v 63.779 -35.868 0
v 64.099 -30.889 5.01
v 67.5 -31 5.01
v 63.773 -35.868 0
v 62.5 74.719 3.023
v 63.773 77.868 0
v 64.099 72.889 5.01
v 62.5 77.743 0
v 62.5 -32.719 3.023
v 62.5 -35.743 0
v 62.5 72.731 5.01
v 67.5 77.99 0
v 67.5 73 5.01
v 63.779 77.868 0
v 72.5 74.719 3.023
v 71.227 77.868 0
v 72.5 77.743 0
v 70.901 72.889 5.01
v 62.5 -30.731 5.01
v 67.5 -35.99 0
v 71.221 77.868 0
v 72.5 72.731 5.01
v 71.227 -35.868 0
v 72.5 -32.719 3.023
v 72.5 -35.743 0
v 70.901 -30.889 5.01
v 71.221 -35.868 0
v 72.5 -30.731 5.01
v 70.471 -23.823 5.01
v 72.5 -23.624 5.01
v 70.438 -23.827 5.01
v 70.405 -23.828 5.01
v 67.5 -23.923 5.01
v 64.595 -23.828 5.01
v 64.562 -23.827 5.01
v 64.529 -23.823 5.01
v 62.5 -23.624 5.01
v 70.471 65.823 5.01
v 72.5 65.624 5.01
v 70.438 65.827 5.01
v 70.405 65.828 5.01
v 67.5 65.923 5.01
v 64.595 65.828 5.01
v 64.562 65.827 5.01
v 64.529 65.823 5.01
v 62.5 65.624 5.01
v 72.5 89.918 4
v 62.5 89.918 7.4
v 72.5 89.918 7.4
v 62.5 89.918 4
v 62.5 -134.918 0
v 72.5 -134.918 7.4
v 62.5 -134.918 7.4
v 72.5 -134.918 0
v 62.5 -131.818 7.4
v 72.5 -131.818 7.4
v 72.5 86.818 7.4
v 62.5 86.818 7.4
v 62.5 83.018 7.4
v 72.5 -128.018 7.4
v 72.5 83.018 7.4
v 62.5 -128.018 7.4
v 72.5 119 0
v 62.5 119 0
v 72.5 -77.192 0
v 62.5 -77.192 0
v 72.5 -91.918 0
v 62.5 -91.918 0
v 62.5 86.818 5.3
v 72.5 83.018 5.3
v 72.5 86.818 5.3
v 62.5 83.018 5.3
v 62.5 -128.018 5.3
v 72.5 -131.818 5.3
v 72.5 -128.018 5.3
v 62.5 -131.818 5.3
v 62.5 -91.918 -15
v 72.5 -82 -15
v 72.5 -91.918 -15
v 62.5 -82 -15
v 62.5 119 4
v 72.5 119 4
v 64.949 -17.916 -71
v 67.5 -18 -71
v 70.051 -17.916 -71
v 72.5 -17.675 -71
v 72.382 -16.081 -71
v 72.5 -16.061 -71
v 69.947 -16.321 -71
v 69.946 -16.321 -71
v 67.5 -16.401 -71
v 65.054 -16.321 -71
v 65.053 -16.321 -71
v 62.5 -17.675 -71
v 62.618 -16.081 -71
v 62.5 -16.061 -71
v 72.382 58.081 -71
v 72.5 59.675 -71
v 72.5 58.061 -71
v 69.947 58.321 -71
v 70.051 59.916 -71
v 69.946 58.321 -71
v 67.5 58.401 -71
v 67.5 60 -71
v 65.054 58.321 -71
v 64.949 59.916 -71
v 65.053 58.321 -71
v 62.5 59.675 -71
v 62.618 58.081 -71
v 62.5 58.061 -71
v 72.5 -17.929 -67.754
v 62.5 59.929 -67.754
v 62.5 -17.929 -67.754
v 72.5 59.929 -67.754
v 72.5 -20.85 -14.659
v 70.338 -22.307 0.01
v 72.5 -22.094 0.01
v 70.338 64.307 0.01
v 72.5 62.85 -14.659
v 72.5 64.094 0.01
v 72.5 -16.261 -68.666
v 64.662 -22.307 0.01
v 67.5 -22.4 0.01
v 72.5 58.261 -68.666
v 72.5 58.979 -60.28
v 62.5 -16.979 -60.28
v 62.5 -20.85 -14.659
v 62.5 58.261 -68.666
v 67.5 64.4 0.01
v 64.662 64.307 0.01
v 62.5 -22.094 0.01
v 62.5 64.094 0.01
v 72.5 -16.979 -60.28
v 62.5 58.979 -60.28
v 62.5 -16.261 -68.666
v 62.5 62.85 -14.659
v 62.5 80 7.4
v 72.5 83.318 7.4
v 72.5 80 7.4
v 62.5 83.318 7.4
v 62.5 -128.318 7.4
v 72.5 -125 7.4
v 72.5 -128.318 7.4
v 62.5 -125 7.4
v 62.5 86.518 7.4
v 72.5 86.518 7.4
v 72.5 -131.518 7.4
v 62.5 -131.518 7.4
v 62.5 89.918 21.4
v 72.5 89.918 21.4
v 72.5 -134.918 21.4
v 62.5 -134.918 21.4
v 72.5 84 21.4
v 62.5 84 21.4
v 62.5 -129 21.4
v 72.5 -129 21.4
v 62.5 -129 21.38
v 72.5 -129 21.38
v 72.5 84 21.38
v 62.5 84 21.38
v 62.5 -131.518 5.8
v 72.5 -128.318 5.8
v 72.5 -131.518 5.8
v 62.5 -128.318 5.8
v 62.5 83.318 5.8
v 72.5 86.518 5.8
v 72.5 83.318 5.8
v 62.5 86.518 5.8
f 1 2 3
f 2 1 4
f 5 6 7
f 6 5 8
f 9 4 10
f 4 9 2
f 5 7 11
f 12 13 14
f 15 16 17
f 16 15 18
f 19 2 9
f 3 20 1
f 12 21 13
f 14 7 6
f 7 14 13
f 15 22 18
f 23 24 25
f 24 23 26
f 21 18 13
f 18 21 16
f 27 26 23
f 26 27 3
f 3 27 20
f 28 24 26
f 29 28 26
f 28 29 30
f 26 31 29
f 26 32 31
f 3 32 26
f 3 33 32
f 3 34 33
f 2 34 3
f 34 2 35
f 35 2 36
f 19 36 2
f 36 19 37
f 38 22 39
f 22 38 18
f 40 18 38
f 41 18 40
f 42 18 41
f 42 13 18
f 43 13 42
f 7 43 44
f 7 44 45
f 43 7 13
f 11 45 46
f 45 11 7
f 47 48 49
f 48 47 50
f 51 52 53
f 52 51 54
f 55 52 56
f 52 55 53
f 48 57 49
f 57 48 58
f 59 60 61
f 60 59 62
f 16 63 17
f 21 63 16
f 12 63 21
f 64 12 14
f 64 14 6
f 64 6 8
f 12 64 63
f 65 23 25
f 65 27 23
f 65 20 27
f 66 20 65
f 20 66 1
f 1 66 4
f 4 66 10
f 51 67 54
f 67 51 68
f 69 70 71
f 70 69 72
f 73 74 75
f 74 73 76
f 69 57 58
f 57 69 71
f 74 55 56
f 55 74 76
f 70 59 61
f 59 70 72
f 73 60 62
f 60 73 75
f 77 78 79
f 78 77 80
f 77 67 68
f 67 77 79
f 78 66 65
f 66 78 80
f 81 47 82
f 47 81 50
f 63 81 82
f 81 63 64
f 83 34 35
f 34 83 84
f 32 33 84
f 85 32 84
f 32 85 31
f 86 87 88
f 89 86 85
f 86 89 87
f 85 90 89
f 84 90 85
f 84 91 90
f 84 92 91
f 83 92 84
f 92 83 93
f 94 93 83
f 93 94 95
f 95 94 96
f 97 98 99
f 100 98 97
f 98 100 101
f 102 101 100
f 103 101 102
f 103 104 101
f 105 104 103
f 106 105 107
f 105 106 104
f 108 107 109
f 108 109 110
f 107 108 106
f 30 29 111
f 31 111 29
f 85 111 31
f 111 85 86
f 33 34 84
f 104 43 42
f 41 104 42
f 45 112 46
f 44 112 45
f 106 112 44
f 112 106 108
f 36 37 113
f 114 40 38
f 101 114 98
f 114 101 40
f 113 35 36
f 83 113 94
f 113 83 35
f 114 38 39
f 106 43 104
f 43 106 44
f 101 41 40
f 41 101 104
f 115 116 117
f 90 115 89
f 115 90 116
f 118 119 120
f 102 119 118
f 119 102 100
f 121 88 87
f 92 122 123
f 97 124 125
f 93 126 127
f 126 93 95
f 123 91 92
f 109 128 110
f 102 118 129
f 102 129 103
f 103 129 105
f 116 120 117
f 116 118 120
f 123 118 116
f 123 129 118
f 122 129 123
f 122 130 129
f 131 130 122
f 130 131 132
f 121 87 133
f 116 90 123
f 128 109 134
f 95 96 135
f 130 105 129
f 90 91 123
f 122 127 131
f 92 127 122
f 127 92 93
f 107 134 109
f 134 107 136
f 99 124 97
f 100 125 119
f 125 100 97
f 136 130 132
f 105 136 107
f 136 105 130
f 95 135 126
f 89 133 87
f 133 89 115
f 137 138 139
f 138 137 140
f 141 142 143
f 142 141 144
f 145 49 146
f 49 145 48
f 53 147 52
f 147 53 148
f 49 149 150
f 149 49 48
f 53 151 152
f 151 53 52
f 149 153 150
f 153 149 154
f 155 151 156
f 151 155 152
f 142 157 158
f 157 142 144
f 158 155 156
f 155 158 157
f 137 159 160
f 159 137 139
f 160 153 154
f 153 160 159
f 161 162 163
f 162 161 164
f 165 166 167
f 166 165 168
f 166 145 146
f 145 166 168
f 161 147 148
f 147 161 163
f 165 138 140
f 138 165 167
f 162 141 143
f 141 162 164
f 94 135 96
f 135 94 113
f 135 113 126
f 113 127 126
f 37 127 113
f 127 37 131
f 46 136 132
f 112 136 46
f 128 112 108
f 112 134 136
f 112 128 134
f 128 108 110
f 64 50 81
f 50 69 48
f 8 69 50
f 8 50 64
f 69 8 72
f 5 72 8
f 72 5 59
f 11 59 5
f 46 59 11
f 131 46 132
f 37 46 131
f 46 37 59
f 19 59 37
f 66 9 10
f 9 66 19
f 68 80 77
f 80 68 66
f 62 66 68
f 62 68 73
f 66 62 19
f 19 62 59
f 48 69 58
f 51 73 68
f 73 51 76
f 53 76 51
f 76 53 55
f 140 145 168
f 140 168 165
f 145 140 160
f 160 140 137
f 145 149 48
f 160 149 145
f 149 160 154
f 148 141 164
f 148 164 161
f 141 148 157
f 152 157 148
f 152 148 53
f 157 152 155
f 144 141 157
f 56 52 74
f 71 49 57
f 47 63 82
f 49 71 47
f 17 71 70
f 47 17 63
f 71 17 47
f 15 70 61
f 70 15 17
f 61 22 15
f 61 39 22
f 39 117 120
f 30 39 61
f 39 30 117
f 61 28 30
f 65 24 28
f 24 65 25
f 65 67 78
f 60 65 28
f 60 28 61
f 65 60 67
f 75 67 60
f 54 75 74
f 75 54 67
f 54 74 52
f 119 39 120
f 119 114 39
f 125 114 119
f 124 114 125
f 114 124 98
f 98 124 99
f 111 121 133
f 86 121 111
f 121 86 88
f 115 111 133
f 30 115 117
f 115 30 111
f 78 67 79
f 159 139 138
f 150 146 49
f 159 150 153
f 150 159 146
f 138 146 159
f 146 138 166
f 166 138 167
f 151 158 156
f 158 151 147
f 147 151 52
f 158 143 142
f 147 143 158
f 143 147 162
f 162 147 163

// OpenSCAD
// file: ../../lib/project/util.scad
// lib/project/util.scad

module rounded_rect_2d(size = [10, 10], r = 2) {
  x = size[0];
  y = size[1];
  rr = min(r, min(x, y) / 2);

  hull() {
    for (sx = [-1, 1], sy = [-1, 1]) {
      translate([sx * (x / 2 - rr), sy * (y / 2 - rr)])
        circle(r = rr);
    }
  }
}
// file: ../../lib/project/params.scad
// lib/project/params.scad
// Shared project parameters for the final tray and all fit-test models.

debug = false;

// Main tray footprint.
tray_corner_r = 15;

// Top tray shell.
tray_floor_t = 2.4;
tray_wall_h = 14;
top_wall_w = 10;
rim_inner_taper = 4.0;
glue_rabbet_h = 1.6;
glue_rabbet_w = 3.2;
glue_rabbet_side_clearance = 0.3;
glue_rabbet_vertical_clearance = 0.5;

// Underside support lip and rear support section.
support_lip_drop = 15;
support_lip_w = 10;
front_lip_forward_shift = 2;
front_lip_back_extra = 5;
front_lip_bottom_back_extra = 0;
side_lip_inner_extra = 2.5;
side_lip_bottom_inner_extra = 0;
console_clear_w = 320;
side_lip_run = 170;
tray_w = console_clear_w + 2 * support_lip_w;
tray_d = side_lip_run + support_lip_w;
front_extension = 45;
rear_gap_w = 28;
rear_tongue_side_margin = 20;
rear_tongue_w = tray_w - 2 * rear_tongue_side_margin;
rear_tongue_depth = 29;
rear_tongue_t = 4.0;

// Cup holder location and plug geometry.
cup_spacing = 135;
// Confirmed from fit checks: move plugs 39 mm rearward from the prior position.
cup_y_from_front = 111;
plug_top_d = 90;
plug_bottom_d = 78;
plug_h = 71;
plug_shell_t = 1.6;
plug_clearance_z = 0;
cup_rim_w = 7;
cup_rim_h = 5;

// Optional underside splice plate for joining printed tray halves.
splice_plate_enable = true;
splice_plate_w = 120;
splice_plate_d = 18;
splice_plate_t = 2;
splice_plate_corner_r = 3;
splice_plate_y_from_front = 40;
splice_plate_side_clearance = 0.3;
splice_plate_vertical_clearance = 0.5;
rear_splice_plate_enable = true;
rear_splice_plate_y_from_front = 184;

// Fit-test defaults.
test_plug_top_ds = [84, 85, 86];
test_spacing_values = [116, 118, 120];
test_lip_drop_values = [8, 10, 12];
test_rear_tongue_ts = [1.4, 1.8, 2.2];
test_frame_wall_w = 12;
test_front_zone_depth = 100;
test_rear_zone_depth = 56;
test_gap_section_w = 140;
test_coupon_spacing = 18;
test_front_to_back_slice_w = 10;
test_side_to_side_slice_w = 10;
test_rabbet_corner_section_size = 56;
test_rabbet_coupon_gap = 16;
test_rabbet_body_margin_from_groove = 15;
// main file
use <../../lib/project/console_tray.scad>;
include <../../lib/project/params.scad>;

cup_plug_front_to_back_slice_variant(
  tray_w = tray_w,
  tray_d = tray_d,
  front_extension = front_extension,
  tray_corner_r = tray_corner_r,
  tray_floor_t = tray_floor_t,
  tray_wall_h = tray_wall_h,
  top_wall_w = top_wall_w,
  rim_inner_taper = rim_inner_taper,
  glue_rabbet_h = glue_rabbet_h,
  glue_rabbet_w = glue_rabbet_w,
  glue_rabbet_side_clearance = glue_rabbet_side_clearance,
  glue_rabbet_vertical_clearance = glue_rabbet_vertical_clearance,
  support_lip_drop = support_lip_drop,
  support_lip_w = support_lip_w,
  front_lip_forward_shift = front_lip_forward_shift,
  front_lip_back_extra = front_lip_back_extra,
  front_lip_bottom_back_extra = front_lip_bottom_back_extra,
  side_lip_inner_extra = side_lip_inner_extra,
  side_lip_bottom_inner_extra = side_lip_bottom_inner_extra,
  rear_gap_w = rear_gap_w,
  rear_tongue_w = rear_tongue_w,
  rear_tongue_depth = rear_tongue_depth,
  rear_tongue_t = rear_tongue_t,
  cup_spacing = cup_spacing,
  cup_y_from_front = cup_y_from_front,
  plug_top_d = plug_top_d,
  plug_bottom_d = plug_bottom_d,
  plug_h = plug_h,
  plug_shell_t = plug_shell_t,
  cup_rim_w = cup_rim_w,
  cup_rim_h = cup_rim_h,
  splice_plate_enable = splice_plate_enable,
  splice_plate_w = splice_plate_w,
  splice_plate_d = splice_plate_d,
  splice_plate_t = splice_plate_t,
  splice_plate_corner_r = splice_plate_corner_r,
  splice_plate_y_from_front = splice_plate_y_from_front,
  splice_plate_side_clearance = splice_plate_side_clearance,
  splice_plate_vertical_clearance = splice_plate_vertical_clearance,
  rear_splice_plate_enable = rear_splice_plate_enable,
  rear_splice_plate_y_from_front = rear_splice_plate_y_from_front,
  plug_clearance_z = plug_clearance_z,
  debug = debug,
  slice_w = test_front_to_back_slice_w
);
